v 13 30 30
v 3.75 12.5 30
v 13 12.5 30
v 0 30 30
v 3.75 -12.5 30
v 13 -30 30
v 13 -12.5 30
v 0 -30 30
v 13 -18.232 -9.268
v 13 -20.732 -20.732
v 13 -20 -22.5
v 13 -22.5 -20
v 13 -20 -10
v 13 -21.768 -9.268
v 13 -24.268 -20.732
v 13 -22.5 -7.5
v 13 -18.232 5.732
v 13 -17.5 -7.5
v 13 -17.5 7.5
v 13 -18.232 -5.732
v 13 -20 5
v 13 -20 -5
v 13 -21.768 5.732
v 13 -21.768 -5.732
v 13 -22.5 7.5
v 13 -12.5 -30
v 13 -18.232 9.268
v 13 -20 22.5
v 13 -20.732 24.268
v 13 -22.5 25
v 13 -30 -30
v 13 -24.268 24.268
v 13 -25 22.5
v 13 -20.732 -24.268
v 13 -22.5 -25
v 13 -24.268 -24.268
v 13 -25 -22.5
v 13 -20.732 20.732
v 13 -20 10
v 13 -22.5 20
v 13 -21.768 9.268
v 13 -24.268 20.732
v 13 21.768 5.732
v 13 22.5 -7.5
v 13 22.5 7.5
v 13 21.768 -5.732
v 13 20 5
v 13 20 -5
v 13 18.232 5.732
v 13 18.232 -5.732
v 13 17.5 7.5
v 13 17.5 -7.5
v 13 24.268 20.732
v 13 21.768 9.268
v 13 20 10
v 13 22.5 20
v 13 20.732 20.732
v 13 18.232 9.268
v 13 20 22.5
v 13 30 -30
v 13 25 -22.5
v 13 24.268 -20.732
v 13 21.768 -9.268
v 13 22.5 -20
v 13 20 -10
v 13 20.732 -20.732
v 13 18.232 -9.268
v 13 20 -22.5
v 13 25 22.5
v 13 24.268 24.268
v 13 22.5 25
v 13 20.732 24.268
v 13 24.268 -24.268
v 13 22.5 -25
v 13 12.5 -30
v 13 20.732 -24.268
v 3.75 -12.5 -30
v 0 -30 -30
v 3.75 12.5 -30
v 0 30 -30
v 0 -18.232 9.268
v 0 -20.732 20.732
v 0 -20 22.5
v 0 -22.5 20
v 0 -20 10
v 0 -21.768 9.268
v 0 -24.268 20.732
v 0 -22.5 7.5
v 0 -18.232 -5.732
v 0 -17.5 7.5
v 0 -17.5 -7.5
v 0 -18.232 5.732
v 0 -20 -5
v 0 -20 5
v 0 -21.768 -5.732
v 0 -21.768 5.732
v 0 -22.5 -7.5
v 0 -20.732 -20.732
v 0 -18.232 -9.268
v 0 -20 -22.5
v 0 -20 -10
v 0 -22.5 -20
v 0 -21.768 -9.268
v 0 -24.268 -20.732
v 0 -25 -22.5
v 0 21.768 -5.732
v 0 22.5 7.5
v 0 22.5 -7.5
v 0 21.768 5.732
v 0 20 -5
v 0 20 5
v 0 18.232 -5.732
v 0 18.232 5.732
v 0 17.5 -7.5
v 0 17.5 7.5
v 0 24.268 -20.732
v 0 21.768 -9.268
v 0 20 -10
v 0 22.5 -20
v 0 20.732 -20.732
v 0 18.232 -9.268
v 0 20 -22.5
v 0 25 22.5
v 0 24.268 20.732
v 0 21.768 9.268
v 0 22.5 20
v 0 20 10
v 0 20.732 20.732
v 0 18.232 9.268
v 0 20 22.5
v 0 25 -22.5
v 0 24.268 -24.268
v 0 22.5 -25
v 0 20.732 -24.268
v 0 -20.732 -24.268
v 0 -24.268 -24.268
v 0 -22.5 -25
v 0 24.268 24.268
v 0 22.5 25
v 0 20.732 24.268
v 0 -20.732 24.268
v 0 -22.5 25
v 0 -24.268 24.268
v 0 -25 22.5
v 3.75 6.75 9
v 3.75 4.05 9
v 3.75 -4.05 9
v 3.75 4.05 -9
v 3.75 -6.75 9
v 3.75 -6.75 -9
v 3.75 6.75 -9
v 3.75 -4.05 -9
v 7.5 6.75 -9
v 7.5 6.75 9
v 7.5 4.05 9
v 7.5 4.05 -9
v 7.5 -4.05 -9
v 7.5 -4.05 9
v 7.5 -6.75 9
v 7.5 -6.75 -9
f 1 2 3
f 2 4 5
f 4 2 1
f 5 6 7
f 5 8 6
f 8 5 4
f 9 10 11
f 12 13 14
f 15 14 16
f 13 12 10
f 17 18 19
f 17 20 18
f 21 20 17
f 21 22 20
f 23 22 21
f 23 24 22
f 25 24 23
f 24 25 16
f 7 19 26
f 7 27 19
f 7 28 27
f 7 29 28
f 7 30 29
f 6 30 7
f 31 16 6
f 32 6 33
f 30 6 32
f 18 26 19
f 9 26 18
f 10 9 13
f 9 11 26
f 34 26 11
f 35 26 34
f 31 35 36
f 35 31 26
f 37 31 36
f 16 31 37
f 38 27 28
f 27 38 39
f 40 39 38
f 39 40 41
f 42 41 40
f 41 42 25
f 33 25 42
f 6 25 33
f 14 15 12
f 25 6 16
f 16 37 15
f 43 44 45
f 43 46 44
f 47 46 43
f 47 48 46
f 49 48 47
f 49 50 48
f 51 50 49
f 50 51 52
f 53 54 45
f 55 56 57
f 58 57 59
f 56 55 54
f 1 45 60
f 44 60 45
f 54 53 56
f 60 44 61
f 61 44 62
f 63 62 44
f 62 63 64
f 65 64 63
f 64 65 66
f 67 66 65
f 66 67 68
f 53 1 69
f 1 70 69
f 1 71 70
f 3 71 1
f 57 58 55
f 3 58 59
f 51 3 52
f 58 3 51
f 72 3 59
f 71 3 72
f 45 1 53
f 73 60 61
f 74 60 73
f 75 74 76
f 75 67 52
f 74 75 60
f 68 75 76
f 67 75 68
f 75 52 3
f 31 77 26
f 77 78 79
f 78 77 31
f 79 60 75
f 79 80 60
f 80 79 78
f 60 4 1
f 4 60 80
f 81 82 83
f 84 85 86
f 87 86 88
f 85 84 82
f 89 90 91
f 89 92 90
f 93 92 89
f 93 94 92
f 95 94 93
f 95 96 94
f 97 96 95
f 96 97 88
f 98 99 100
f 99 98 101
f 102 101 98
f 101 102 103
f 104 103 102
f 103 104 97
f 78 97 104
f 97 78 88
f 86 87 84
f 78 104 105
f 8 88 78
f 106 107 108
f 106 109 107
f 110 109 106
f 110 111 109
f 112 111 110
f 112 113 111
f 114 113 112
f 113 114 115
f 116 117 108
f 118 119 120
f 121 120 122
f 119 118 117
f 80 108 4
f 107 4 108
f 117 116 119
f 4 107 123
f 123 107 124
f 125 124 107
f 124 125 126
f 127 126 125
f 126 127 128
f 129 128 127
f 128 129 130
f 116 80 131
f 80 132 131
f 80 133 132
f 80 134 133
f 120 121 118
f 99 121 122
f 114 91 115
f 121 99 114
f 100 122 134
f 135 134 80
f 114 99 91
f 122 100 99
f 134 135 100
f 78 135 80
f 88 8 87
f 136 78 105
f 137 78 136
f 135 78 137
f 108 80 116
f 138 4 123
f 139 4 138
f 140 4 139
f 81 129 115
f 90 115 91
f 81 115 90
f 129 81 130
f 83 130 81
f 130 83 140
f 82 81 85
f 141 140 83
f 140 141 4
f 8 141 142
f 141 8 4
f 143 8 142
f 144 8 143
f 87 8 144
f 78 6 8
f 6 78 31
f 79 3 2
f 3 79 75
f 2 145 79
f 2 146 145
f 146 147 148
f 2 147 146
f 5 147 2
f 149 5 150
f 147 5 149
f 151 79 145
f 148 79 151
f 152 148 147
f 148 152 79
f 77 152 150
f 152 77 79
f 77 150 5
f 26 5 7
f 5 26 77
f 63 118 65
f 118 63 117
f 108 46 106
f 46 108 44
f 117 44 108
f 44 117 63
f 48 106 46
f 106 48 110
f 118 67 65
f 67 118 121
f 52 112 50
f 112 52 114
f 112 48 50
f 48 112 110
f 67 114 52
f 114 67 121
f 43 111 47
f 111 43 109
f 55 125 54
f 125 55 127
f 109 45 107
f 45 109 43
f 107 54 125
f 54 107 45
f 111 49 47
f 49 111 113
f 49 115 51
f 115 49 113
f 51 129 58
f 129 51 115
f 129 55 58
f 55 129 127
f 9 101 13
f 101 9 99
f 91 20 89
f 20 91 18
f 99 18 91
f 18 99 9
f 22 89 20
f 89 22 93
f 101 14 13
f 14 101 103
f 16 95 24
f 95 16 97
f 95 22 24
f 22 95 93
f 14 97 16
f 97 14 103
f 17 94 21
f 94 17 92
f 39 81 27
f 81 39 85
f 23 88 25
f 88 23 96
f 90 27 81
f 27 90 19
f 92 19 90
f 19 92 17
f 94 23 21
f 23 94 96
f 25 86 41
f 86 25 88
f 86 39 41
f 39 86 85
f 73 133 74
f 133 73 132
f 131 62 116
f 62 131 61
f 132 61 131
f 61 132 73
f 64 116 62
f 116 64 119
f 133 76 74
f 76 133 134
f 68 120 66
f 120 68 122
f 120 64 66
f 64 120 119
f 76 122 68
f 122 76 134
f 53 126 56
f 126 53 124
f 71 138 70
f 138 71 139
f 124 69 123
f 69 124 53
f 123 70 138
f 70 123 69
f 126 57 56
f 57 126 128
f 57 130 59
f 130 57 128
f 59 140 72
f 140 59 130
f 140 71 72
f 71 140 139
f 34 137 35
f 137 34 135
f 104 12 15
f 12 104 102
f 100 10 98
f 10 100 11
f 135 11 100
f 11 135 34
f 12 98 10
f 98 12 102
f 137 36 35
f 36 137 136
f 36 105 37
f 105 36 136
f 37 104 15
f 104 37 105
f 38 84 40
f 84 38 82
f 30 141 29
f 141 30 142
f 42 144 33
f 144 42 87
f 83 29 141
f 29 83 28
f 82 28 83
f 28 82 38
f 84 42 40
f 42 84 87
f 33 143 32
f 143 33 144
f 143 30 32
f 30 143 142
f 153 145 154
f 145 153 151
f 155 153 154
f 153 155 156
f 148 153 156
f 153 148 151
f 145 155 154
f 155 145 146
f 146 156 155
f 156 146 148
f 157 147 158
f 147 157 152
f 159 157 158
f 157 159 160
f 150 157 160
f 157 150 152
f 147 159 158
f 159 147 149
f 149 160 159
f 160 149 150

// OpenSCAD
// Gen1_delta MotorMount clamp
//block shape
x=60;
y=60;
z=13;

// track channel
f=x+10;
g=25;
h=9.5;
// block top
e=20;
r=y+10;
t=16.5;

// spacing of screw holes
cx=15;
cy=40;
dx=15;
dy=45;
cz=20;

//anglefloat
dk=25.5;
ck=21;

// rotation
gx=90;

rotate([0,gx,0])
difference()
{
    translate([0,0,z]/2) cube ([x,y,z],center=true);
    translate([0,0,z+4]/2) cube([f,g,h],center=true);
 
  translate([cx,cy,0]/2) cylinder(d=5, h=50,  center=true);
  translate([-cx,cy,0]/2) cylinder(d=5, h=50,  center=true);
    translate([cx,-cy,0]/2) cylinder(d=5, h=50,  center=true);
    translate([-cx,-cy,0]/2) cylinder(d=5, h=50,  center=true);
 //corner holes
    translate([dy,dy,0]/2) cylinder(d=5, h=50,  center=true);
  translate([-dy,dy,0]/2) cylinder(d=5, h=50,  center=true);
    translate([dy,-dy,0]/2) cylinder(d=5, h=50,  center=true);
    translate([-dy,-dy,0]/2) cylinder(d=5, h=50,  center=true);  
 //   translate([dy,dx,0]/2) cylinder(d=5, h=50,  center=true);
 // translate([-dy,dx,0]/2) cylinder(d=5, h=50,  center=true);  
//  translate([dy,-dx,0]/2) cylinder(d=5, h=50,  center=true);
 // translate([-dy,-dx,0]/2) cylinder(d=5, h=50,  center=true);  
    
// translate([cx,cy,0]/2)  cylinder(d1=16, d2=8, h=7,  center=true);
// translate([-cx,cy,0]/2) cylinder(d1=16, d2=8, h=7, center=true);
 //   translate([cx,-cy,0]/2) cylinder(d1=16, d2=8, h=7,  center=true);
  //  translate([-cx,-cy,0]/2) cylinder(d1=16, d2=8, h=7,  center=true);    
// zip tie knotches    
 //   translate([0,-cy/2,11.5-10]) cube([18,3,4],center=true);
  //  translate([0,cy/2,11.5-10]) cube([18,3,4],center=true);
// removal knotches
//       translate([0,-(6.8+51)/2,11.5]) cube([8,3,4],center=true);
//   translate([0,(6.8+51)/2,11.5-10]) cube([8,3,4],center=true);
//   translate([(6.8+51)/2,0,11.5-11]) cube([3,8,2],center=true);
  // translate([-(6.8+51)/2,0,11.5-11]) cube([3,8,2],center=true);
}

// tabs for slots

rotate([0,gx,0])  translate([0,(6.8+4)/2,z-8]) cube([18,2.7,5],center=true);
rotate([0,gx,0])  translate([0,-(6.8+4)/2,z-8]) cube([18,2.7,5],center=true);
